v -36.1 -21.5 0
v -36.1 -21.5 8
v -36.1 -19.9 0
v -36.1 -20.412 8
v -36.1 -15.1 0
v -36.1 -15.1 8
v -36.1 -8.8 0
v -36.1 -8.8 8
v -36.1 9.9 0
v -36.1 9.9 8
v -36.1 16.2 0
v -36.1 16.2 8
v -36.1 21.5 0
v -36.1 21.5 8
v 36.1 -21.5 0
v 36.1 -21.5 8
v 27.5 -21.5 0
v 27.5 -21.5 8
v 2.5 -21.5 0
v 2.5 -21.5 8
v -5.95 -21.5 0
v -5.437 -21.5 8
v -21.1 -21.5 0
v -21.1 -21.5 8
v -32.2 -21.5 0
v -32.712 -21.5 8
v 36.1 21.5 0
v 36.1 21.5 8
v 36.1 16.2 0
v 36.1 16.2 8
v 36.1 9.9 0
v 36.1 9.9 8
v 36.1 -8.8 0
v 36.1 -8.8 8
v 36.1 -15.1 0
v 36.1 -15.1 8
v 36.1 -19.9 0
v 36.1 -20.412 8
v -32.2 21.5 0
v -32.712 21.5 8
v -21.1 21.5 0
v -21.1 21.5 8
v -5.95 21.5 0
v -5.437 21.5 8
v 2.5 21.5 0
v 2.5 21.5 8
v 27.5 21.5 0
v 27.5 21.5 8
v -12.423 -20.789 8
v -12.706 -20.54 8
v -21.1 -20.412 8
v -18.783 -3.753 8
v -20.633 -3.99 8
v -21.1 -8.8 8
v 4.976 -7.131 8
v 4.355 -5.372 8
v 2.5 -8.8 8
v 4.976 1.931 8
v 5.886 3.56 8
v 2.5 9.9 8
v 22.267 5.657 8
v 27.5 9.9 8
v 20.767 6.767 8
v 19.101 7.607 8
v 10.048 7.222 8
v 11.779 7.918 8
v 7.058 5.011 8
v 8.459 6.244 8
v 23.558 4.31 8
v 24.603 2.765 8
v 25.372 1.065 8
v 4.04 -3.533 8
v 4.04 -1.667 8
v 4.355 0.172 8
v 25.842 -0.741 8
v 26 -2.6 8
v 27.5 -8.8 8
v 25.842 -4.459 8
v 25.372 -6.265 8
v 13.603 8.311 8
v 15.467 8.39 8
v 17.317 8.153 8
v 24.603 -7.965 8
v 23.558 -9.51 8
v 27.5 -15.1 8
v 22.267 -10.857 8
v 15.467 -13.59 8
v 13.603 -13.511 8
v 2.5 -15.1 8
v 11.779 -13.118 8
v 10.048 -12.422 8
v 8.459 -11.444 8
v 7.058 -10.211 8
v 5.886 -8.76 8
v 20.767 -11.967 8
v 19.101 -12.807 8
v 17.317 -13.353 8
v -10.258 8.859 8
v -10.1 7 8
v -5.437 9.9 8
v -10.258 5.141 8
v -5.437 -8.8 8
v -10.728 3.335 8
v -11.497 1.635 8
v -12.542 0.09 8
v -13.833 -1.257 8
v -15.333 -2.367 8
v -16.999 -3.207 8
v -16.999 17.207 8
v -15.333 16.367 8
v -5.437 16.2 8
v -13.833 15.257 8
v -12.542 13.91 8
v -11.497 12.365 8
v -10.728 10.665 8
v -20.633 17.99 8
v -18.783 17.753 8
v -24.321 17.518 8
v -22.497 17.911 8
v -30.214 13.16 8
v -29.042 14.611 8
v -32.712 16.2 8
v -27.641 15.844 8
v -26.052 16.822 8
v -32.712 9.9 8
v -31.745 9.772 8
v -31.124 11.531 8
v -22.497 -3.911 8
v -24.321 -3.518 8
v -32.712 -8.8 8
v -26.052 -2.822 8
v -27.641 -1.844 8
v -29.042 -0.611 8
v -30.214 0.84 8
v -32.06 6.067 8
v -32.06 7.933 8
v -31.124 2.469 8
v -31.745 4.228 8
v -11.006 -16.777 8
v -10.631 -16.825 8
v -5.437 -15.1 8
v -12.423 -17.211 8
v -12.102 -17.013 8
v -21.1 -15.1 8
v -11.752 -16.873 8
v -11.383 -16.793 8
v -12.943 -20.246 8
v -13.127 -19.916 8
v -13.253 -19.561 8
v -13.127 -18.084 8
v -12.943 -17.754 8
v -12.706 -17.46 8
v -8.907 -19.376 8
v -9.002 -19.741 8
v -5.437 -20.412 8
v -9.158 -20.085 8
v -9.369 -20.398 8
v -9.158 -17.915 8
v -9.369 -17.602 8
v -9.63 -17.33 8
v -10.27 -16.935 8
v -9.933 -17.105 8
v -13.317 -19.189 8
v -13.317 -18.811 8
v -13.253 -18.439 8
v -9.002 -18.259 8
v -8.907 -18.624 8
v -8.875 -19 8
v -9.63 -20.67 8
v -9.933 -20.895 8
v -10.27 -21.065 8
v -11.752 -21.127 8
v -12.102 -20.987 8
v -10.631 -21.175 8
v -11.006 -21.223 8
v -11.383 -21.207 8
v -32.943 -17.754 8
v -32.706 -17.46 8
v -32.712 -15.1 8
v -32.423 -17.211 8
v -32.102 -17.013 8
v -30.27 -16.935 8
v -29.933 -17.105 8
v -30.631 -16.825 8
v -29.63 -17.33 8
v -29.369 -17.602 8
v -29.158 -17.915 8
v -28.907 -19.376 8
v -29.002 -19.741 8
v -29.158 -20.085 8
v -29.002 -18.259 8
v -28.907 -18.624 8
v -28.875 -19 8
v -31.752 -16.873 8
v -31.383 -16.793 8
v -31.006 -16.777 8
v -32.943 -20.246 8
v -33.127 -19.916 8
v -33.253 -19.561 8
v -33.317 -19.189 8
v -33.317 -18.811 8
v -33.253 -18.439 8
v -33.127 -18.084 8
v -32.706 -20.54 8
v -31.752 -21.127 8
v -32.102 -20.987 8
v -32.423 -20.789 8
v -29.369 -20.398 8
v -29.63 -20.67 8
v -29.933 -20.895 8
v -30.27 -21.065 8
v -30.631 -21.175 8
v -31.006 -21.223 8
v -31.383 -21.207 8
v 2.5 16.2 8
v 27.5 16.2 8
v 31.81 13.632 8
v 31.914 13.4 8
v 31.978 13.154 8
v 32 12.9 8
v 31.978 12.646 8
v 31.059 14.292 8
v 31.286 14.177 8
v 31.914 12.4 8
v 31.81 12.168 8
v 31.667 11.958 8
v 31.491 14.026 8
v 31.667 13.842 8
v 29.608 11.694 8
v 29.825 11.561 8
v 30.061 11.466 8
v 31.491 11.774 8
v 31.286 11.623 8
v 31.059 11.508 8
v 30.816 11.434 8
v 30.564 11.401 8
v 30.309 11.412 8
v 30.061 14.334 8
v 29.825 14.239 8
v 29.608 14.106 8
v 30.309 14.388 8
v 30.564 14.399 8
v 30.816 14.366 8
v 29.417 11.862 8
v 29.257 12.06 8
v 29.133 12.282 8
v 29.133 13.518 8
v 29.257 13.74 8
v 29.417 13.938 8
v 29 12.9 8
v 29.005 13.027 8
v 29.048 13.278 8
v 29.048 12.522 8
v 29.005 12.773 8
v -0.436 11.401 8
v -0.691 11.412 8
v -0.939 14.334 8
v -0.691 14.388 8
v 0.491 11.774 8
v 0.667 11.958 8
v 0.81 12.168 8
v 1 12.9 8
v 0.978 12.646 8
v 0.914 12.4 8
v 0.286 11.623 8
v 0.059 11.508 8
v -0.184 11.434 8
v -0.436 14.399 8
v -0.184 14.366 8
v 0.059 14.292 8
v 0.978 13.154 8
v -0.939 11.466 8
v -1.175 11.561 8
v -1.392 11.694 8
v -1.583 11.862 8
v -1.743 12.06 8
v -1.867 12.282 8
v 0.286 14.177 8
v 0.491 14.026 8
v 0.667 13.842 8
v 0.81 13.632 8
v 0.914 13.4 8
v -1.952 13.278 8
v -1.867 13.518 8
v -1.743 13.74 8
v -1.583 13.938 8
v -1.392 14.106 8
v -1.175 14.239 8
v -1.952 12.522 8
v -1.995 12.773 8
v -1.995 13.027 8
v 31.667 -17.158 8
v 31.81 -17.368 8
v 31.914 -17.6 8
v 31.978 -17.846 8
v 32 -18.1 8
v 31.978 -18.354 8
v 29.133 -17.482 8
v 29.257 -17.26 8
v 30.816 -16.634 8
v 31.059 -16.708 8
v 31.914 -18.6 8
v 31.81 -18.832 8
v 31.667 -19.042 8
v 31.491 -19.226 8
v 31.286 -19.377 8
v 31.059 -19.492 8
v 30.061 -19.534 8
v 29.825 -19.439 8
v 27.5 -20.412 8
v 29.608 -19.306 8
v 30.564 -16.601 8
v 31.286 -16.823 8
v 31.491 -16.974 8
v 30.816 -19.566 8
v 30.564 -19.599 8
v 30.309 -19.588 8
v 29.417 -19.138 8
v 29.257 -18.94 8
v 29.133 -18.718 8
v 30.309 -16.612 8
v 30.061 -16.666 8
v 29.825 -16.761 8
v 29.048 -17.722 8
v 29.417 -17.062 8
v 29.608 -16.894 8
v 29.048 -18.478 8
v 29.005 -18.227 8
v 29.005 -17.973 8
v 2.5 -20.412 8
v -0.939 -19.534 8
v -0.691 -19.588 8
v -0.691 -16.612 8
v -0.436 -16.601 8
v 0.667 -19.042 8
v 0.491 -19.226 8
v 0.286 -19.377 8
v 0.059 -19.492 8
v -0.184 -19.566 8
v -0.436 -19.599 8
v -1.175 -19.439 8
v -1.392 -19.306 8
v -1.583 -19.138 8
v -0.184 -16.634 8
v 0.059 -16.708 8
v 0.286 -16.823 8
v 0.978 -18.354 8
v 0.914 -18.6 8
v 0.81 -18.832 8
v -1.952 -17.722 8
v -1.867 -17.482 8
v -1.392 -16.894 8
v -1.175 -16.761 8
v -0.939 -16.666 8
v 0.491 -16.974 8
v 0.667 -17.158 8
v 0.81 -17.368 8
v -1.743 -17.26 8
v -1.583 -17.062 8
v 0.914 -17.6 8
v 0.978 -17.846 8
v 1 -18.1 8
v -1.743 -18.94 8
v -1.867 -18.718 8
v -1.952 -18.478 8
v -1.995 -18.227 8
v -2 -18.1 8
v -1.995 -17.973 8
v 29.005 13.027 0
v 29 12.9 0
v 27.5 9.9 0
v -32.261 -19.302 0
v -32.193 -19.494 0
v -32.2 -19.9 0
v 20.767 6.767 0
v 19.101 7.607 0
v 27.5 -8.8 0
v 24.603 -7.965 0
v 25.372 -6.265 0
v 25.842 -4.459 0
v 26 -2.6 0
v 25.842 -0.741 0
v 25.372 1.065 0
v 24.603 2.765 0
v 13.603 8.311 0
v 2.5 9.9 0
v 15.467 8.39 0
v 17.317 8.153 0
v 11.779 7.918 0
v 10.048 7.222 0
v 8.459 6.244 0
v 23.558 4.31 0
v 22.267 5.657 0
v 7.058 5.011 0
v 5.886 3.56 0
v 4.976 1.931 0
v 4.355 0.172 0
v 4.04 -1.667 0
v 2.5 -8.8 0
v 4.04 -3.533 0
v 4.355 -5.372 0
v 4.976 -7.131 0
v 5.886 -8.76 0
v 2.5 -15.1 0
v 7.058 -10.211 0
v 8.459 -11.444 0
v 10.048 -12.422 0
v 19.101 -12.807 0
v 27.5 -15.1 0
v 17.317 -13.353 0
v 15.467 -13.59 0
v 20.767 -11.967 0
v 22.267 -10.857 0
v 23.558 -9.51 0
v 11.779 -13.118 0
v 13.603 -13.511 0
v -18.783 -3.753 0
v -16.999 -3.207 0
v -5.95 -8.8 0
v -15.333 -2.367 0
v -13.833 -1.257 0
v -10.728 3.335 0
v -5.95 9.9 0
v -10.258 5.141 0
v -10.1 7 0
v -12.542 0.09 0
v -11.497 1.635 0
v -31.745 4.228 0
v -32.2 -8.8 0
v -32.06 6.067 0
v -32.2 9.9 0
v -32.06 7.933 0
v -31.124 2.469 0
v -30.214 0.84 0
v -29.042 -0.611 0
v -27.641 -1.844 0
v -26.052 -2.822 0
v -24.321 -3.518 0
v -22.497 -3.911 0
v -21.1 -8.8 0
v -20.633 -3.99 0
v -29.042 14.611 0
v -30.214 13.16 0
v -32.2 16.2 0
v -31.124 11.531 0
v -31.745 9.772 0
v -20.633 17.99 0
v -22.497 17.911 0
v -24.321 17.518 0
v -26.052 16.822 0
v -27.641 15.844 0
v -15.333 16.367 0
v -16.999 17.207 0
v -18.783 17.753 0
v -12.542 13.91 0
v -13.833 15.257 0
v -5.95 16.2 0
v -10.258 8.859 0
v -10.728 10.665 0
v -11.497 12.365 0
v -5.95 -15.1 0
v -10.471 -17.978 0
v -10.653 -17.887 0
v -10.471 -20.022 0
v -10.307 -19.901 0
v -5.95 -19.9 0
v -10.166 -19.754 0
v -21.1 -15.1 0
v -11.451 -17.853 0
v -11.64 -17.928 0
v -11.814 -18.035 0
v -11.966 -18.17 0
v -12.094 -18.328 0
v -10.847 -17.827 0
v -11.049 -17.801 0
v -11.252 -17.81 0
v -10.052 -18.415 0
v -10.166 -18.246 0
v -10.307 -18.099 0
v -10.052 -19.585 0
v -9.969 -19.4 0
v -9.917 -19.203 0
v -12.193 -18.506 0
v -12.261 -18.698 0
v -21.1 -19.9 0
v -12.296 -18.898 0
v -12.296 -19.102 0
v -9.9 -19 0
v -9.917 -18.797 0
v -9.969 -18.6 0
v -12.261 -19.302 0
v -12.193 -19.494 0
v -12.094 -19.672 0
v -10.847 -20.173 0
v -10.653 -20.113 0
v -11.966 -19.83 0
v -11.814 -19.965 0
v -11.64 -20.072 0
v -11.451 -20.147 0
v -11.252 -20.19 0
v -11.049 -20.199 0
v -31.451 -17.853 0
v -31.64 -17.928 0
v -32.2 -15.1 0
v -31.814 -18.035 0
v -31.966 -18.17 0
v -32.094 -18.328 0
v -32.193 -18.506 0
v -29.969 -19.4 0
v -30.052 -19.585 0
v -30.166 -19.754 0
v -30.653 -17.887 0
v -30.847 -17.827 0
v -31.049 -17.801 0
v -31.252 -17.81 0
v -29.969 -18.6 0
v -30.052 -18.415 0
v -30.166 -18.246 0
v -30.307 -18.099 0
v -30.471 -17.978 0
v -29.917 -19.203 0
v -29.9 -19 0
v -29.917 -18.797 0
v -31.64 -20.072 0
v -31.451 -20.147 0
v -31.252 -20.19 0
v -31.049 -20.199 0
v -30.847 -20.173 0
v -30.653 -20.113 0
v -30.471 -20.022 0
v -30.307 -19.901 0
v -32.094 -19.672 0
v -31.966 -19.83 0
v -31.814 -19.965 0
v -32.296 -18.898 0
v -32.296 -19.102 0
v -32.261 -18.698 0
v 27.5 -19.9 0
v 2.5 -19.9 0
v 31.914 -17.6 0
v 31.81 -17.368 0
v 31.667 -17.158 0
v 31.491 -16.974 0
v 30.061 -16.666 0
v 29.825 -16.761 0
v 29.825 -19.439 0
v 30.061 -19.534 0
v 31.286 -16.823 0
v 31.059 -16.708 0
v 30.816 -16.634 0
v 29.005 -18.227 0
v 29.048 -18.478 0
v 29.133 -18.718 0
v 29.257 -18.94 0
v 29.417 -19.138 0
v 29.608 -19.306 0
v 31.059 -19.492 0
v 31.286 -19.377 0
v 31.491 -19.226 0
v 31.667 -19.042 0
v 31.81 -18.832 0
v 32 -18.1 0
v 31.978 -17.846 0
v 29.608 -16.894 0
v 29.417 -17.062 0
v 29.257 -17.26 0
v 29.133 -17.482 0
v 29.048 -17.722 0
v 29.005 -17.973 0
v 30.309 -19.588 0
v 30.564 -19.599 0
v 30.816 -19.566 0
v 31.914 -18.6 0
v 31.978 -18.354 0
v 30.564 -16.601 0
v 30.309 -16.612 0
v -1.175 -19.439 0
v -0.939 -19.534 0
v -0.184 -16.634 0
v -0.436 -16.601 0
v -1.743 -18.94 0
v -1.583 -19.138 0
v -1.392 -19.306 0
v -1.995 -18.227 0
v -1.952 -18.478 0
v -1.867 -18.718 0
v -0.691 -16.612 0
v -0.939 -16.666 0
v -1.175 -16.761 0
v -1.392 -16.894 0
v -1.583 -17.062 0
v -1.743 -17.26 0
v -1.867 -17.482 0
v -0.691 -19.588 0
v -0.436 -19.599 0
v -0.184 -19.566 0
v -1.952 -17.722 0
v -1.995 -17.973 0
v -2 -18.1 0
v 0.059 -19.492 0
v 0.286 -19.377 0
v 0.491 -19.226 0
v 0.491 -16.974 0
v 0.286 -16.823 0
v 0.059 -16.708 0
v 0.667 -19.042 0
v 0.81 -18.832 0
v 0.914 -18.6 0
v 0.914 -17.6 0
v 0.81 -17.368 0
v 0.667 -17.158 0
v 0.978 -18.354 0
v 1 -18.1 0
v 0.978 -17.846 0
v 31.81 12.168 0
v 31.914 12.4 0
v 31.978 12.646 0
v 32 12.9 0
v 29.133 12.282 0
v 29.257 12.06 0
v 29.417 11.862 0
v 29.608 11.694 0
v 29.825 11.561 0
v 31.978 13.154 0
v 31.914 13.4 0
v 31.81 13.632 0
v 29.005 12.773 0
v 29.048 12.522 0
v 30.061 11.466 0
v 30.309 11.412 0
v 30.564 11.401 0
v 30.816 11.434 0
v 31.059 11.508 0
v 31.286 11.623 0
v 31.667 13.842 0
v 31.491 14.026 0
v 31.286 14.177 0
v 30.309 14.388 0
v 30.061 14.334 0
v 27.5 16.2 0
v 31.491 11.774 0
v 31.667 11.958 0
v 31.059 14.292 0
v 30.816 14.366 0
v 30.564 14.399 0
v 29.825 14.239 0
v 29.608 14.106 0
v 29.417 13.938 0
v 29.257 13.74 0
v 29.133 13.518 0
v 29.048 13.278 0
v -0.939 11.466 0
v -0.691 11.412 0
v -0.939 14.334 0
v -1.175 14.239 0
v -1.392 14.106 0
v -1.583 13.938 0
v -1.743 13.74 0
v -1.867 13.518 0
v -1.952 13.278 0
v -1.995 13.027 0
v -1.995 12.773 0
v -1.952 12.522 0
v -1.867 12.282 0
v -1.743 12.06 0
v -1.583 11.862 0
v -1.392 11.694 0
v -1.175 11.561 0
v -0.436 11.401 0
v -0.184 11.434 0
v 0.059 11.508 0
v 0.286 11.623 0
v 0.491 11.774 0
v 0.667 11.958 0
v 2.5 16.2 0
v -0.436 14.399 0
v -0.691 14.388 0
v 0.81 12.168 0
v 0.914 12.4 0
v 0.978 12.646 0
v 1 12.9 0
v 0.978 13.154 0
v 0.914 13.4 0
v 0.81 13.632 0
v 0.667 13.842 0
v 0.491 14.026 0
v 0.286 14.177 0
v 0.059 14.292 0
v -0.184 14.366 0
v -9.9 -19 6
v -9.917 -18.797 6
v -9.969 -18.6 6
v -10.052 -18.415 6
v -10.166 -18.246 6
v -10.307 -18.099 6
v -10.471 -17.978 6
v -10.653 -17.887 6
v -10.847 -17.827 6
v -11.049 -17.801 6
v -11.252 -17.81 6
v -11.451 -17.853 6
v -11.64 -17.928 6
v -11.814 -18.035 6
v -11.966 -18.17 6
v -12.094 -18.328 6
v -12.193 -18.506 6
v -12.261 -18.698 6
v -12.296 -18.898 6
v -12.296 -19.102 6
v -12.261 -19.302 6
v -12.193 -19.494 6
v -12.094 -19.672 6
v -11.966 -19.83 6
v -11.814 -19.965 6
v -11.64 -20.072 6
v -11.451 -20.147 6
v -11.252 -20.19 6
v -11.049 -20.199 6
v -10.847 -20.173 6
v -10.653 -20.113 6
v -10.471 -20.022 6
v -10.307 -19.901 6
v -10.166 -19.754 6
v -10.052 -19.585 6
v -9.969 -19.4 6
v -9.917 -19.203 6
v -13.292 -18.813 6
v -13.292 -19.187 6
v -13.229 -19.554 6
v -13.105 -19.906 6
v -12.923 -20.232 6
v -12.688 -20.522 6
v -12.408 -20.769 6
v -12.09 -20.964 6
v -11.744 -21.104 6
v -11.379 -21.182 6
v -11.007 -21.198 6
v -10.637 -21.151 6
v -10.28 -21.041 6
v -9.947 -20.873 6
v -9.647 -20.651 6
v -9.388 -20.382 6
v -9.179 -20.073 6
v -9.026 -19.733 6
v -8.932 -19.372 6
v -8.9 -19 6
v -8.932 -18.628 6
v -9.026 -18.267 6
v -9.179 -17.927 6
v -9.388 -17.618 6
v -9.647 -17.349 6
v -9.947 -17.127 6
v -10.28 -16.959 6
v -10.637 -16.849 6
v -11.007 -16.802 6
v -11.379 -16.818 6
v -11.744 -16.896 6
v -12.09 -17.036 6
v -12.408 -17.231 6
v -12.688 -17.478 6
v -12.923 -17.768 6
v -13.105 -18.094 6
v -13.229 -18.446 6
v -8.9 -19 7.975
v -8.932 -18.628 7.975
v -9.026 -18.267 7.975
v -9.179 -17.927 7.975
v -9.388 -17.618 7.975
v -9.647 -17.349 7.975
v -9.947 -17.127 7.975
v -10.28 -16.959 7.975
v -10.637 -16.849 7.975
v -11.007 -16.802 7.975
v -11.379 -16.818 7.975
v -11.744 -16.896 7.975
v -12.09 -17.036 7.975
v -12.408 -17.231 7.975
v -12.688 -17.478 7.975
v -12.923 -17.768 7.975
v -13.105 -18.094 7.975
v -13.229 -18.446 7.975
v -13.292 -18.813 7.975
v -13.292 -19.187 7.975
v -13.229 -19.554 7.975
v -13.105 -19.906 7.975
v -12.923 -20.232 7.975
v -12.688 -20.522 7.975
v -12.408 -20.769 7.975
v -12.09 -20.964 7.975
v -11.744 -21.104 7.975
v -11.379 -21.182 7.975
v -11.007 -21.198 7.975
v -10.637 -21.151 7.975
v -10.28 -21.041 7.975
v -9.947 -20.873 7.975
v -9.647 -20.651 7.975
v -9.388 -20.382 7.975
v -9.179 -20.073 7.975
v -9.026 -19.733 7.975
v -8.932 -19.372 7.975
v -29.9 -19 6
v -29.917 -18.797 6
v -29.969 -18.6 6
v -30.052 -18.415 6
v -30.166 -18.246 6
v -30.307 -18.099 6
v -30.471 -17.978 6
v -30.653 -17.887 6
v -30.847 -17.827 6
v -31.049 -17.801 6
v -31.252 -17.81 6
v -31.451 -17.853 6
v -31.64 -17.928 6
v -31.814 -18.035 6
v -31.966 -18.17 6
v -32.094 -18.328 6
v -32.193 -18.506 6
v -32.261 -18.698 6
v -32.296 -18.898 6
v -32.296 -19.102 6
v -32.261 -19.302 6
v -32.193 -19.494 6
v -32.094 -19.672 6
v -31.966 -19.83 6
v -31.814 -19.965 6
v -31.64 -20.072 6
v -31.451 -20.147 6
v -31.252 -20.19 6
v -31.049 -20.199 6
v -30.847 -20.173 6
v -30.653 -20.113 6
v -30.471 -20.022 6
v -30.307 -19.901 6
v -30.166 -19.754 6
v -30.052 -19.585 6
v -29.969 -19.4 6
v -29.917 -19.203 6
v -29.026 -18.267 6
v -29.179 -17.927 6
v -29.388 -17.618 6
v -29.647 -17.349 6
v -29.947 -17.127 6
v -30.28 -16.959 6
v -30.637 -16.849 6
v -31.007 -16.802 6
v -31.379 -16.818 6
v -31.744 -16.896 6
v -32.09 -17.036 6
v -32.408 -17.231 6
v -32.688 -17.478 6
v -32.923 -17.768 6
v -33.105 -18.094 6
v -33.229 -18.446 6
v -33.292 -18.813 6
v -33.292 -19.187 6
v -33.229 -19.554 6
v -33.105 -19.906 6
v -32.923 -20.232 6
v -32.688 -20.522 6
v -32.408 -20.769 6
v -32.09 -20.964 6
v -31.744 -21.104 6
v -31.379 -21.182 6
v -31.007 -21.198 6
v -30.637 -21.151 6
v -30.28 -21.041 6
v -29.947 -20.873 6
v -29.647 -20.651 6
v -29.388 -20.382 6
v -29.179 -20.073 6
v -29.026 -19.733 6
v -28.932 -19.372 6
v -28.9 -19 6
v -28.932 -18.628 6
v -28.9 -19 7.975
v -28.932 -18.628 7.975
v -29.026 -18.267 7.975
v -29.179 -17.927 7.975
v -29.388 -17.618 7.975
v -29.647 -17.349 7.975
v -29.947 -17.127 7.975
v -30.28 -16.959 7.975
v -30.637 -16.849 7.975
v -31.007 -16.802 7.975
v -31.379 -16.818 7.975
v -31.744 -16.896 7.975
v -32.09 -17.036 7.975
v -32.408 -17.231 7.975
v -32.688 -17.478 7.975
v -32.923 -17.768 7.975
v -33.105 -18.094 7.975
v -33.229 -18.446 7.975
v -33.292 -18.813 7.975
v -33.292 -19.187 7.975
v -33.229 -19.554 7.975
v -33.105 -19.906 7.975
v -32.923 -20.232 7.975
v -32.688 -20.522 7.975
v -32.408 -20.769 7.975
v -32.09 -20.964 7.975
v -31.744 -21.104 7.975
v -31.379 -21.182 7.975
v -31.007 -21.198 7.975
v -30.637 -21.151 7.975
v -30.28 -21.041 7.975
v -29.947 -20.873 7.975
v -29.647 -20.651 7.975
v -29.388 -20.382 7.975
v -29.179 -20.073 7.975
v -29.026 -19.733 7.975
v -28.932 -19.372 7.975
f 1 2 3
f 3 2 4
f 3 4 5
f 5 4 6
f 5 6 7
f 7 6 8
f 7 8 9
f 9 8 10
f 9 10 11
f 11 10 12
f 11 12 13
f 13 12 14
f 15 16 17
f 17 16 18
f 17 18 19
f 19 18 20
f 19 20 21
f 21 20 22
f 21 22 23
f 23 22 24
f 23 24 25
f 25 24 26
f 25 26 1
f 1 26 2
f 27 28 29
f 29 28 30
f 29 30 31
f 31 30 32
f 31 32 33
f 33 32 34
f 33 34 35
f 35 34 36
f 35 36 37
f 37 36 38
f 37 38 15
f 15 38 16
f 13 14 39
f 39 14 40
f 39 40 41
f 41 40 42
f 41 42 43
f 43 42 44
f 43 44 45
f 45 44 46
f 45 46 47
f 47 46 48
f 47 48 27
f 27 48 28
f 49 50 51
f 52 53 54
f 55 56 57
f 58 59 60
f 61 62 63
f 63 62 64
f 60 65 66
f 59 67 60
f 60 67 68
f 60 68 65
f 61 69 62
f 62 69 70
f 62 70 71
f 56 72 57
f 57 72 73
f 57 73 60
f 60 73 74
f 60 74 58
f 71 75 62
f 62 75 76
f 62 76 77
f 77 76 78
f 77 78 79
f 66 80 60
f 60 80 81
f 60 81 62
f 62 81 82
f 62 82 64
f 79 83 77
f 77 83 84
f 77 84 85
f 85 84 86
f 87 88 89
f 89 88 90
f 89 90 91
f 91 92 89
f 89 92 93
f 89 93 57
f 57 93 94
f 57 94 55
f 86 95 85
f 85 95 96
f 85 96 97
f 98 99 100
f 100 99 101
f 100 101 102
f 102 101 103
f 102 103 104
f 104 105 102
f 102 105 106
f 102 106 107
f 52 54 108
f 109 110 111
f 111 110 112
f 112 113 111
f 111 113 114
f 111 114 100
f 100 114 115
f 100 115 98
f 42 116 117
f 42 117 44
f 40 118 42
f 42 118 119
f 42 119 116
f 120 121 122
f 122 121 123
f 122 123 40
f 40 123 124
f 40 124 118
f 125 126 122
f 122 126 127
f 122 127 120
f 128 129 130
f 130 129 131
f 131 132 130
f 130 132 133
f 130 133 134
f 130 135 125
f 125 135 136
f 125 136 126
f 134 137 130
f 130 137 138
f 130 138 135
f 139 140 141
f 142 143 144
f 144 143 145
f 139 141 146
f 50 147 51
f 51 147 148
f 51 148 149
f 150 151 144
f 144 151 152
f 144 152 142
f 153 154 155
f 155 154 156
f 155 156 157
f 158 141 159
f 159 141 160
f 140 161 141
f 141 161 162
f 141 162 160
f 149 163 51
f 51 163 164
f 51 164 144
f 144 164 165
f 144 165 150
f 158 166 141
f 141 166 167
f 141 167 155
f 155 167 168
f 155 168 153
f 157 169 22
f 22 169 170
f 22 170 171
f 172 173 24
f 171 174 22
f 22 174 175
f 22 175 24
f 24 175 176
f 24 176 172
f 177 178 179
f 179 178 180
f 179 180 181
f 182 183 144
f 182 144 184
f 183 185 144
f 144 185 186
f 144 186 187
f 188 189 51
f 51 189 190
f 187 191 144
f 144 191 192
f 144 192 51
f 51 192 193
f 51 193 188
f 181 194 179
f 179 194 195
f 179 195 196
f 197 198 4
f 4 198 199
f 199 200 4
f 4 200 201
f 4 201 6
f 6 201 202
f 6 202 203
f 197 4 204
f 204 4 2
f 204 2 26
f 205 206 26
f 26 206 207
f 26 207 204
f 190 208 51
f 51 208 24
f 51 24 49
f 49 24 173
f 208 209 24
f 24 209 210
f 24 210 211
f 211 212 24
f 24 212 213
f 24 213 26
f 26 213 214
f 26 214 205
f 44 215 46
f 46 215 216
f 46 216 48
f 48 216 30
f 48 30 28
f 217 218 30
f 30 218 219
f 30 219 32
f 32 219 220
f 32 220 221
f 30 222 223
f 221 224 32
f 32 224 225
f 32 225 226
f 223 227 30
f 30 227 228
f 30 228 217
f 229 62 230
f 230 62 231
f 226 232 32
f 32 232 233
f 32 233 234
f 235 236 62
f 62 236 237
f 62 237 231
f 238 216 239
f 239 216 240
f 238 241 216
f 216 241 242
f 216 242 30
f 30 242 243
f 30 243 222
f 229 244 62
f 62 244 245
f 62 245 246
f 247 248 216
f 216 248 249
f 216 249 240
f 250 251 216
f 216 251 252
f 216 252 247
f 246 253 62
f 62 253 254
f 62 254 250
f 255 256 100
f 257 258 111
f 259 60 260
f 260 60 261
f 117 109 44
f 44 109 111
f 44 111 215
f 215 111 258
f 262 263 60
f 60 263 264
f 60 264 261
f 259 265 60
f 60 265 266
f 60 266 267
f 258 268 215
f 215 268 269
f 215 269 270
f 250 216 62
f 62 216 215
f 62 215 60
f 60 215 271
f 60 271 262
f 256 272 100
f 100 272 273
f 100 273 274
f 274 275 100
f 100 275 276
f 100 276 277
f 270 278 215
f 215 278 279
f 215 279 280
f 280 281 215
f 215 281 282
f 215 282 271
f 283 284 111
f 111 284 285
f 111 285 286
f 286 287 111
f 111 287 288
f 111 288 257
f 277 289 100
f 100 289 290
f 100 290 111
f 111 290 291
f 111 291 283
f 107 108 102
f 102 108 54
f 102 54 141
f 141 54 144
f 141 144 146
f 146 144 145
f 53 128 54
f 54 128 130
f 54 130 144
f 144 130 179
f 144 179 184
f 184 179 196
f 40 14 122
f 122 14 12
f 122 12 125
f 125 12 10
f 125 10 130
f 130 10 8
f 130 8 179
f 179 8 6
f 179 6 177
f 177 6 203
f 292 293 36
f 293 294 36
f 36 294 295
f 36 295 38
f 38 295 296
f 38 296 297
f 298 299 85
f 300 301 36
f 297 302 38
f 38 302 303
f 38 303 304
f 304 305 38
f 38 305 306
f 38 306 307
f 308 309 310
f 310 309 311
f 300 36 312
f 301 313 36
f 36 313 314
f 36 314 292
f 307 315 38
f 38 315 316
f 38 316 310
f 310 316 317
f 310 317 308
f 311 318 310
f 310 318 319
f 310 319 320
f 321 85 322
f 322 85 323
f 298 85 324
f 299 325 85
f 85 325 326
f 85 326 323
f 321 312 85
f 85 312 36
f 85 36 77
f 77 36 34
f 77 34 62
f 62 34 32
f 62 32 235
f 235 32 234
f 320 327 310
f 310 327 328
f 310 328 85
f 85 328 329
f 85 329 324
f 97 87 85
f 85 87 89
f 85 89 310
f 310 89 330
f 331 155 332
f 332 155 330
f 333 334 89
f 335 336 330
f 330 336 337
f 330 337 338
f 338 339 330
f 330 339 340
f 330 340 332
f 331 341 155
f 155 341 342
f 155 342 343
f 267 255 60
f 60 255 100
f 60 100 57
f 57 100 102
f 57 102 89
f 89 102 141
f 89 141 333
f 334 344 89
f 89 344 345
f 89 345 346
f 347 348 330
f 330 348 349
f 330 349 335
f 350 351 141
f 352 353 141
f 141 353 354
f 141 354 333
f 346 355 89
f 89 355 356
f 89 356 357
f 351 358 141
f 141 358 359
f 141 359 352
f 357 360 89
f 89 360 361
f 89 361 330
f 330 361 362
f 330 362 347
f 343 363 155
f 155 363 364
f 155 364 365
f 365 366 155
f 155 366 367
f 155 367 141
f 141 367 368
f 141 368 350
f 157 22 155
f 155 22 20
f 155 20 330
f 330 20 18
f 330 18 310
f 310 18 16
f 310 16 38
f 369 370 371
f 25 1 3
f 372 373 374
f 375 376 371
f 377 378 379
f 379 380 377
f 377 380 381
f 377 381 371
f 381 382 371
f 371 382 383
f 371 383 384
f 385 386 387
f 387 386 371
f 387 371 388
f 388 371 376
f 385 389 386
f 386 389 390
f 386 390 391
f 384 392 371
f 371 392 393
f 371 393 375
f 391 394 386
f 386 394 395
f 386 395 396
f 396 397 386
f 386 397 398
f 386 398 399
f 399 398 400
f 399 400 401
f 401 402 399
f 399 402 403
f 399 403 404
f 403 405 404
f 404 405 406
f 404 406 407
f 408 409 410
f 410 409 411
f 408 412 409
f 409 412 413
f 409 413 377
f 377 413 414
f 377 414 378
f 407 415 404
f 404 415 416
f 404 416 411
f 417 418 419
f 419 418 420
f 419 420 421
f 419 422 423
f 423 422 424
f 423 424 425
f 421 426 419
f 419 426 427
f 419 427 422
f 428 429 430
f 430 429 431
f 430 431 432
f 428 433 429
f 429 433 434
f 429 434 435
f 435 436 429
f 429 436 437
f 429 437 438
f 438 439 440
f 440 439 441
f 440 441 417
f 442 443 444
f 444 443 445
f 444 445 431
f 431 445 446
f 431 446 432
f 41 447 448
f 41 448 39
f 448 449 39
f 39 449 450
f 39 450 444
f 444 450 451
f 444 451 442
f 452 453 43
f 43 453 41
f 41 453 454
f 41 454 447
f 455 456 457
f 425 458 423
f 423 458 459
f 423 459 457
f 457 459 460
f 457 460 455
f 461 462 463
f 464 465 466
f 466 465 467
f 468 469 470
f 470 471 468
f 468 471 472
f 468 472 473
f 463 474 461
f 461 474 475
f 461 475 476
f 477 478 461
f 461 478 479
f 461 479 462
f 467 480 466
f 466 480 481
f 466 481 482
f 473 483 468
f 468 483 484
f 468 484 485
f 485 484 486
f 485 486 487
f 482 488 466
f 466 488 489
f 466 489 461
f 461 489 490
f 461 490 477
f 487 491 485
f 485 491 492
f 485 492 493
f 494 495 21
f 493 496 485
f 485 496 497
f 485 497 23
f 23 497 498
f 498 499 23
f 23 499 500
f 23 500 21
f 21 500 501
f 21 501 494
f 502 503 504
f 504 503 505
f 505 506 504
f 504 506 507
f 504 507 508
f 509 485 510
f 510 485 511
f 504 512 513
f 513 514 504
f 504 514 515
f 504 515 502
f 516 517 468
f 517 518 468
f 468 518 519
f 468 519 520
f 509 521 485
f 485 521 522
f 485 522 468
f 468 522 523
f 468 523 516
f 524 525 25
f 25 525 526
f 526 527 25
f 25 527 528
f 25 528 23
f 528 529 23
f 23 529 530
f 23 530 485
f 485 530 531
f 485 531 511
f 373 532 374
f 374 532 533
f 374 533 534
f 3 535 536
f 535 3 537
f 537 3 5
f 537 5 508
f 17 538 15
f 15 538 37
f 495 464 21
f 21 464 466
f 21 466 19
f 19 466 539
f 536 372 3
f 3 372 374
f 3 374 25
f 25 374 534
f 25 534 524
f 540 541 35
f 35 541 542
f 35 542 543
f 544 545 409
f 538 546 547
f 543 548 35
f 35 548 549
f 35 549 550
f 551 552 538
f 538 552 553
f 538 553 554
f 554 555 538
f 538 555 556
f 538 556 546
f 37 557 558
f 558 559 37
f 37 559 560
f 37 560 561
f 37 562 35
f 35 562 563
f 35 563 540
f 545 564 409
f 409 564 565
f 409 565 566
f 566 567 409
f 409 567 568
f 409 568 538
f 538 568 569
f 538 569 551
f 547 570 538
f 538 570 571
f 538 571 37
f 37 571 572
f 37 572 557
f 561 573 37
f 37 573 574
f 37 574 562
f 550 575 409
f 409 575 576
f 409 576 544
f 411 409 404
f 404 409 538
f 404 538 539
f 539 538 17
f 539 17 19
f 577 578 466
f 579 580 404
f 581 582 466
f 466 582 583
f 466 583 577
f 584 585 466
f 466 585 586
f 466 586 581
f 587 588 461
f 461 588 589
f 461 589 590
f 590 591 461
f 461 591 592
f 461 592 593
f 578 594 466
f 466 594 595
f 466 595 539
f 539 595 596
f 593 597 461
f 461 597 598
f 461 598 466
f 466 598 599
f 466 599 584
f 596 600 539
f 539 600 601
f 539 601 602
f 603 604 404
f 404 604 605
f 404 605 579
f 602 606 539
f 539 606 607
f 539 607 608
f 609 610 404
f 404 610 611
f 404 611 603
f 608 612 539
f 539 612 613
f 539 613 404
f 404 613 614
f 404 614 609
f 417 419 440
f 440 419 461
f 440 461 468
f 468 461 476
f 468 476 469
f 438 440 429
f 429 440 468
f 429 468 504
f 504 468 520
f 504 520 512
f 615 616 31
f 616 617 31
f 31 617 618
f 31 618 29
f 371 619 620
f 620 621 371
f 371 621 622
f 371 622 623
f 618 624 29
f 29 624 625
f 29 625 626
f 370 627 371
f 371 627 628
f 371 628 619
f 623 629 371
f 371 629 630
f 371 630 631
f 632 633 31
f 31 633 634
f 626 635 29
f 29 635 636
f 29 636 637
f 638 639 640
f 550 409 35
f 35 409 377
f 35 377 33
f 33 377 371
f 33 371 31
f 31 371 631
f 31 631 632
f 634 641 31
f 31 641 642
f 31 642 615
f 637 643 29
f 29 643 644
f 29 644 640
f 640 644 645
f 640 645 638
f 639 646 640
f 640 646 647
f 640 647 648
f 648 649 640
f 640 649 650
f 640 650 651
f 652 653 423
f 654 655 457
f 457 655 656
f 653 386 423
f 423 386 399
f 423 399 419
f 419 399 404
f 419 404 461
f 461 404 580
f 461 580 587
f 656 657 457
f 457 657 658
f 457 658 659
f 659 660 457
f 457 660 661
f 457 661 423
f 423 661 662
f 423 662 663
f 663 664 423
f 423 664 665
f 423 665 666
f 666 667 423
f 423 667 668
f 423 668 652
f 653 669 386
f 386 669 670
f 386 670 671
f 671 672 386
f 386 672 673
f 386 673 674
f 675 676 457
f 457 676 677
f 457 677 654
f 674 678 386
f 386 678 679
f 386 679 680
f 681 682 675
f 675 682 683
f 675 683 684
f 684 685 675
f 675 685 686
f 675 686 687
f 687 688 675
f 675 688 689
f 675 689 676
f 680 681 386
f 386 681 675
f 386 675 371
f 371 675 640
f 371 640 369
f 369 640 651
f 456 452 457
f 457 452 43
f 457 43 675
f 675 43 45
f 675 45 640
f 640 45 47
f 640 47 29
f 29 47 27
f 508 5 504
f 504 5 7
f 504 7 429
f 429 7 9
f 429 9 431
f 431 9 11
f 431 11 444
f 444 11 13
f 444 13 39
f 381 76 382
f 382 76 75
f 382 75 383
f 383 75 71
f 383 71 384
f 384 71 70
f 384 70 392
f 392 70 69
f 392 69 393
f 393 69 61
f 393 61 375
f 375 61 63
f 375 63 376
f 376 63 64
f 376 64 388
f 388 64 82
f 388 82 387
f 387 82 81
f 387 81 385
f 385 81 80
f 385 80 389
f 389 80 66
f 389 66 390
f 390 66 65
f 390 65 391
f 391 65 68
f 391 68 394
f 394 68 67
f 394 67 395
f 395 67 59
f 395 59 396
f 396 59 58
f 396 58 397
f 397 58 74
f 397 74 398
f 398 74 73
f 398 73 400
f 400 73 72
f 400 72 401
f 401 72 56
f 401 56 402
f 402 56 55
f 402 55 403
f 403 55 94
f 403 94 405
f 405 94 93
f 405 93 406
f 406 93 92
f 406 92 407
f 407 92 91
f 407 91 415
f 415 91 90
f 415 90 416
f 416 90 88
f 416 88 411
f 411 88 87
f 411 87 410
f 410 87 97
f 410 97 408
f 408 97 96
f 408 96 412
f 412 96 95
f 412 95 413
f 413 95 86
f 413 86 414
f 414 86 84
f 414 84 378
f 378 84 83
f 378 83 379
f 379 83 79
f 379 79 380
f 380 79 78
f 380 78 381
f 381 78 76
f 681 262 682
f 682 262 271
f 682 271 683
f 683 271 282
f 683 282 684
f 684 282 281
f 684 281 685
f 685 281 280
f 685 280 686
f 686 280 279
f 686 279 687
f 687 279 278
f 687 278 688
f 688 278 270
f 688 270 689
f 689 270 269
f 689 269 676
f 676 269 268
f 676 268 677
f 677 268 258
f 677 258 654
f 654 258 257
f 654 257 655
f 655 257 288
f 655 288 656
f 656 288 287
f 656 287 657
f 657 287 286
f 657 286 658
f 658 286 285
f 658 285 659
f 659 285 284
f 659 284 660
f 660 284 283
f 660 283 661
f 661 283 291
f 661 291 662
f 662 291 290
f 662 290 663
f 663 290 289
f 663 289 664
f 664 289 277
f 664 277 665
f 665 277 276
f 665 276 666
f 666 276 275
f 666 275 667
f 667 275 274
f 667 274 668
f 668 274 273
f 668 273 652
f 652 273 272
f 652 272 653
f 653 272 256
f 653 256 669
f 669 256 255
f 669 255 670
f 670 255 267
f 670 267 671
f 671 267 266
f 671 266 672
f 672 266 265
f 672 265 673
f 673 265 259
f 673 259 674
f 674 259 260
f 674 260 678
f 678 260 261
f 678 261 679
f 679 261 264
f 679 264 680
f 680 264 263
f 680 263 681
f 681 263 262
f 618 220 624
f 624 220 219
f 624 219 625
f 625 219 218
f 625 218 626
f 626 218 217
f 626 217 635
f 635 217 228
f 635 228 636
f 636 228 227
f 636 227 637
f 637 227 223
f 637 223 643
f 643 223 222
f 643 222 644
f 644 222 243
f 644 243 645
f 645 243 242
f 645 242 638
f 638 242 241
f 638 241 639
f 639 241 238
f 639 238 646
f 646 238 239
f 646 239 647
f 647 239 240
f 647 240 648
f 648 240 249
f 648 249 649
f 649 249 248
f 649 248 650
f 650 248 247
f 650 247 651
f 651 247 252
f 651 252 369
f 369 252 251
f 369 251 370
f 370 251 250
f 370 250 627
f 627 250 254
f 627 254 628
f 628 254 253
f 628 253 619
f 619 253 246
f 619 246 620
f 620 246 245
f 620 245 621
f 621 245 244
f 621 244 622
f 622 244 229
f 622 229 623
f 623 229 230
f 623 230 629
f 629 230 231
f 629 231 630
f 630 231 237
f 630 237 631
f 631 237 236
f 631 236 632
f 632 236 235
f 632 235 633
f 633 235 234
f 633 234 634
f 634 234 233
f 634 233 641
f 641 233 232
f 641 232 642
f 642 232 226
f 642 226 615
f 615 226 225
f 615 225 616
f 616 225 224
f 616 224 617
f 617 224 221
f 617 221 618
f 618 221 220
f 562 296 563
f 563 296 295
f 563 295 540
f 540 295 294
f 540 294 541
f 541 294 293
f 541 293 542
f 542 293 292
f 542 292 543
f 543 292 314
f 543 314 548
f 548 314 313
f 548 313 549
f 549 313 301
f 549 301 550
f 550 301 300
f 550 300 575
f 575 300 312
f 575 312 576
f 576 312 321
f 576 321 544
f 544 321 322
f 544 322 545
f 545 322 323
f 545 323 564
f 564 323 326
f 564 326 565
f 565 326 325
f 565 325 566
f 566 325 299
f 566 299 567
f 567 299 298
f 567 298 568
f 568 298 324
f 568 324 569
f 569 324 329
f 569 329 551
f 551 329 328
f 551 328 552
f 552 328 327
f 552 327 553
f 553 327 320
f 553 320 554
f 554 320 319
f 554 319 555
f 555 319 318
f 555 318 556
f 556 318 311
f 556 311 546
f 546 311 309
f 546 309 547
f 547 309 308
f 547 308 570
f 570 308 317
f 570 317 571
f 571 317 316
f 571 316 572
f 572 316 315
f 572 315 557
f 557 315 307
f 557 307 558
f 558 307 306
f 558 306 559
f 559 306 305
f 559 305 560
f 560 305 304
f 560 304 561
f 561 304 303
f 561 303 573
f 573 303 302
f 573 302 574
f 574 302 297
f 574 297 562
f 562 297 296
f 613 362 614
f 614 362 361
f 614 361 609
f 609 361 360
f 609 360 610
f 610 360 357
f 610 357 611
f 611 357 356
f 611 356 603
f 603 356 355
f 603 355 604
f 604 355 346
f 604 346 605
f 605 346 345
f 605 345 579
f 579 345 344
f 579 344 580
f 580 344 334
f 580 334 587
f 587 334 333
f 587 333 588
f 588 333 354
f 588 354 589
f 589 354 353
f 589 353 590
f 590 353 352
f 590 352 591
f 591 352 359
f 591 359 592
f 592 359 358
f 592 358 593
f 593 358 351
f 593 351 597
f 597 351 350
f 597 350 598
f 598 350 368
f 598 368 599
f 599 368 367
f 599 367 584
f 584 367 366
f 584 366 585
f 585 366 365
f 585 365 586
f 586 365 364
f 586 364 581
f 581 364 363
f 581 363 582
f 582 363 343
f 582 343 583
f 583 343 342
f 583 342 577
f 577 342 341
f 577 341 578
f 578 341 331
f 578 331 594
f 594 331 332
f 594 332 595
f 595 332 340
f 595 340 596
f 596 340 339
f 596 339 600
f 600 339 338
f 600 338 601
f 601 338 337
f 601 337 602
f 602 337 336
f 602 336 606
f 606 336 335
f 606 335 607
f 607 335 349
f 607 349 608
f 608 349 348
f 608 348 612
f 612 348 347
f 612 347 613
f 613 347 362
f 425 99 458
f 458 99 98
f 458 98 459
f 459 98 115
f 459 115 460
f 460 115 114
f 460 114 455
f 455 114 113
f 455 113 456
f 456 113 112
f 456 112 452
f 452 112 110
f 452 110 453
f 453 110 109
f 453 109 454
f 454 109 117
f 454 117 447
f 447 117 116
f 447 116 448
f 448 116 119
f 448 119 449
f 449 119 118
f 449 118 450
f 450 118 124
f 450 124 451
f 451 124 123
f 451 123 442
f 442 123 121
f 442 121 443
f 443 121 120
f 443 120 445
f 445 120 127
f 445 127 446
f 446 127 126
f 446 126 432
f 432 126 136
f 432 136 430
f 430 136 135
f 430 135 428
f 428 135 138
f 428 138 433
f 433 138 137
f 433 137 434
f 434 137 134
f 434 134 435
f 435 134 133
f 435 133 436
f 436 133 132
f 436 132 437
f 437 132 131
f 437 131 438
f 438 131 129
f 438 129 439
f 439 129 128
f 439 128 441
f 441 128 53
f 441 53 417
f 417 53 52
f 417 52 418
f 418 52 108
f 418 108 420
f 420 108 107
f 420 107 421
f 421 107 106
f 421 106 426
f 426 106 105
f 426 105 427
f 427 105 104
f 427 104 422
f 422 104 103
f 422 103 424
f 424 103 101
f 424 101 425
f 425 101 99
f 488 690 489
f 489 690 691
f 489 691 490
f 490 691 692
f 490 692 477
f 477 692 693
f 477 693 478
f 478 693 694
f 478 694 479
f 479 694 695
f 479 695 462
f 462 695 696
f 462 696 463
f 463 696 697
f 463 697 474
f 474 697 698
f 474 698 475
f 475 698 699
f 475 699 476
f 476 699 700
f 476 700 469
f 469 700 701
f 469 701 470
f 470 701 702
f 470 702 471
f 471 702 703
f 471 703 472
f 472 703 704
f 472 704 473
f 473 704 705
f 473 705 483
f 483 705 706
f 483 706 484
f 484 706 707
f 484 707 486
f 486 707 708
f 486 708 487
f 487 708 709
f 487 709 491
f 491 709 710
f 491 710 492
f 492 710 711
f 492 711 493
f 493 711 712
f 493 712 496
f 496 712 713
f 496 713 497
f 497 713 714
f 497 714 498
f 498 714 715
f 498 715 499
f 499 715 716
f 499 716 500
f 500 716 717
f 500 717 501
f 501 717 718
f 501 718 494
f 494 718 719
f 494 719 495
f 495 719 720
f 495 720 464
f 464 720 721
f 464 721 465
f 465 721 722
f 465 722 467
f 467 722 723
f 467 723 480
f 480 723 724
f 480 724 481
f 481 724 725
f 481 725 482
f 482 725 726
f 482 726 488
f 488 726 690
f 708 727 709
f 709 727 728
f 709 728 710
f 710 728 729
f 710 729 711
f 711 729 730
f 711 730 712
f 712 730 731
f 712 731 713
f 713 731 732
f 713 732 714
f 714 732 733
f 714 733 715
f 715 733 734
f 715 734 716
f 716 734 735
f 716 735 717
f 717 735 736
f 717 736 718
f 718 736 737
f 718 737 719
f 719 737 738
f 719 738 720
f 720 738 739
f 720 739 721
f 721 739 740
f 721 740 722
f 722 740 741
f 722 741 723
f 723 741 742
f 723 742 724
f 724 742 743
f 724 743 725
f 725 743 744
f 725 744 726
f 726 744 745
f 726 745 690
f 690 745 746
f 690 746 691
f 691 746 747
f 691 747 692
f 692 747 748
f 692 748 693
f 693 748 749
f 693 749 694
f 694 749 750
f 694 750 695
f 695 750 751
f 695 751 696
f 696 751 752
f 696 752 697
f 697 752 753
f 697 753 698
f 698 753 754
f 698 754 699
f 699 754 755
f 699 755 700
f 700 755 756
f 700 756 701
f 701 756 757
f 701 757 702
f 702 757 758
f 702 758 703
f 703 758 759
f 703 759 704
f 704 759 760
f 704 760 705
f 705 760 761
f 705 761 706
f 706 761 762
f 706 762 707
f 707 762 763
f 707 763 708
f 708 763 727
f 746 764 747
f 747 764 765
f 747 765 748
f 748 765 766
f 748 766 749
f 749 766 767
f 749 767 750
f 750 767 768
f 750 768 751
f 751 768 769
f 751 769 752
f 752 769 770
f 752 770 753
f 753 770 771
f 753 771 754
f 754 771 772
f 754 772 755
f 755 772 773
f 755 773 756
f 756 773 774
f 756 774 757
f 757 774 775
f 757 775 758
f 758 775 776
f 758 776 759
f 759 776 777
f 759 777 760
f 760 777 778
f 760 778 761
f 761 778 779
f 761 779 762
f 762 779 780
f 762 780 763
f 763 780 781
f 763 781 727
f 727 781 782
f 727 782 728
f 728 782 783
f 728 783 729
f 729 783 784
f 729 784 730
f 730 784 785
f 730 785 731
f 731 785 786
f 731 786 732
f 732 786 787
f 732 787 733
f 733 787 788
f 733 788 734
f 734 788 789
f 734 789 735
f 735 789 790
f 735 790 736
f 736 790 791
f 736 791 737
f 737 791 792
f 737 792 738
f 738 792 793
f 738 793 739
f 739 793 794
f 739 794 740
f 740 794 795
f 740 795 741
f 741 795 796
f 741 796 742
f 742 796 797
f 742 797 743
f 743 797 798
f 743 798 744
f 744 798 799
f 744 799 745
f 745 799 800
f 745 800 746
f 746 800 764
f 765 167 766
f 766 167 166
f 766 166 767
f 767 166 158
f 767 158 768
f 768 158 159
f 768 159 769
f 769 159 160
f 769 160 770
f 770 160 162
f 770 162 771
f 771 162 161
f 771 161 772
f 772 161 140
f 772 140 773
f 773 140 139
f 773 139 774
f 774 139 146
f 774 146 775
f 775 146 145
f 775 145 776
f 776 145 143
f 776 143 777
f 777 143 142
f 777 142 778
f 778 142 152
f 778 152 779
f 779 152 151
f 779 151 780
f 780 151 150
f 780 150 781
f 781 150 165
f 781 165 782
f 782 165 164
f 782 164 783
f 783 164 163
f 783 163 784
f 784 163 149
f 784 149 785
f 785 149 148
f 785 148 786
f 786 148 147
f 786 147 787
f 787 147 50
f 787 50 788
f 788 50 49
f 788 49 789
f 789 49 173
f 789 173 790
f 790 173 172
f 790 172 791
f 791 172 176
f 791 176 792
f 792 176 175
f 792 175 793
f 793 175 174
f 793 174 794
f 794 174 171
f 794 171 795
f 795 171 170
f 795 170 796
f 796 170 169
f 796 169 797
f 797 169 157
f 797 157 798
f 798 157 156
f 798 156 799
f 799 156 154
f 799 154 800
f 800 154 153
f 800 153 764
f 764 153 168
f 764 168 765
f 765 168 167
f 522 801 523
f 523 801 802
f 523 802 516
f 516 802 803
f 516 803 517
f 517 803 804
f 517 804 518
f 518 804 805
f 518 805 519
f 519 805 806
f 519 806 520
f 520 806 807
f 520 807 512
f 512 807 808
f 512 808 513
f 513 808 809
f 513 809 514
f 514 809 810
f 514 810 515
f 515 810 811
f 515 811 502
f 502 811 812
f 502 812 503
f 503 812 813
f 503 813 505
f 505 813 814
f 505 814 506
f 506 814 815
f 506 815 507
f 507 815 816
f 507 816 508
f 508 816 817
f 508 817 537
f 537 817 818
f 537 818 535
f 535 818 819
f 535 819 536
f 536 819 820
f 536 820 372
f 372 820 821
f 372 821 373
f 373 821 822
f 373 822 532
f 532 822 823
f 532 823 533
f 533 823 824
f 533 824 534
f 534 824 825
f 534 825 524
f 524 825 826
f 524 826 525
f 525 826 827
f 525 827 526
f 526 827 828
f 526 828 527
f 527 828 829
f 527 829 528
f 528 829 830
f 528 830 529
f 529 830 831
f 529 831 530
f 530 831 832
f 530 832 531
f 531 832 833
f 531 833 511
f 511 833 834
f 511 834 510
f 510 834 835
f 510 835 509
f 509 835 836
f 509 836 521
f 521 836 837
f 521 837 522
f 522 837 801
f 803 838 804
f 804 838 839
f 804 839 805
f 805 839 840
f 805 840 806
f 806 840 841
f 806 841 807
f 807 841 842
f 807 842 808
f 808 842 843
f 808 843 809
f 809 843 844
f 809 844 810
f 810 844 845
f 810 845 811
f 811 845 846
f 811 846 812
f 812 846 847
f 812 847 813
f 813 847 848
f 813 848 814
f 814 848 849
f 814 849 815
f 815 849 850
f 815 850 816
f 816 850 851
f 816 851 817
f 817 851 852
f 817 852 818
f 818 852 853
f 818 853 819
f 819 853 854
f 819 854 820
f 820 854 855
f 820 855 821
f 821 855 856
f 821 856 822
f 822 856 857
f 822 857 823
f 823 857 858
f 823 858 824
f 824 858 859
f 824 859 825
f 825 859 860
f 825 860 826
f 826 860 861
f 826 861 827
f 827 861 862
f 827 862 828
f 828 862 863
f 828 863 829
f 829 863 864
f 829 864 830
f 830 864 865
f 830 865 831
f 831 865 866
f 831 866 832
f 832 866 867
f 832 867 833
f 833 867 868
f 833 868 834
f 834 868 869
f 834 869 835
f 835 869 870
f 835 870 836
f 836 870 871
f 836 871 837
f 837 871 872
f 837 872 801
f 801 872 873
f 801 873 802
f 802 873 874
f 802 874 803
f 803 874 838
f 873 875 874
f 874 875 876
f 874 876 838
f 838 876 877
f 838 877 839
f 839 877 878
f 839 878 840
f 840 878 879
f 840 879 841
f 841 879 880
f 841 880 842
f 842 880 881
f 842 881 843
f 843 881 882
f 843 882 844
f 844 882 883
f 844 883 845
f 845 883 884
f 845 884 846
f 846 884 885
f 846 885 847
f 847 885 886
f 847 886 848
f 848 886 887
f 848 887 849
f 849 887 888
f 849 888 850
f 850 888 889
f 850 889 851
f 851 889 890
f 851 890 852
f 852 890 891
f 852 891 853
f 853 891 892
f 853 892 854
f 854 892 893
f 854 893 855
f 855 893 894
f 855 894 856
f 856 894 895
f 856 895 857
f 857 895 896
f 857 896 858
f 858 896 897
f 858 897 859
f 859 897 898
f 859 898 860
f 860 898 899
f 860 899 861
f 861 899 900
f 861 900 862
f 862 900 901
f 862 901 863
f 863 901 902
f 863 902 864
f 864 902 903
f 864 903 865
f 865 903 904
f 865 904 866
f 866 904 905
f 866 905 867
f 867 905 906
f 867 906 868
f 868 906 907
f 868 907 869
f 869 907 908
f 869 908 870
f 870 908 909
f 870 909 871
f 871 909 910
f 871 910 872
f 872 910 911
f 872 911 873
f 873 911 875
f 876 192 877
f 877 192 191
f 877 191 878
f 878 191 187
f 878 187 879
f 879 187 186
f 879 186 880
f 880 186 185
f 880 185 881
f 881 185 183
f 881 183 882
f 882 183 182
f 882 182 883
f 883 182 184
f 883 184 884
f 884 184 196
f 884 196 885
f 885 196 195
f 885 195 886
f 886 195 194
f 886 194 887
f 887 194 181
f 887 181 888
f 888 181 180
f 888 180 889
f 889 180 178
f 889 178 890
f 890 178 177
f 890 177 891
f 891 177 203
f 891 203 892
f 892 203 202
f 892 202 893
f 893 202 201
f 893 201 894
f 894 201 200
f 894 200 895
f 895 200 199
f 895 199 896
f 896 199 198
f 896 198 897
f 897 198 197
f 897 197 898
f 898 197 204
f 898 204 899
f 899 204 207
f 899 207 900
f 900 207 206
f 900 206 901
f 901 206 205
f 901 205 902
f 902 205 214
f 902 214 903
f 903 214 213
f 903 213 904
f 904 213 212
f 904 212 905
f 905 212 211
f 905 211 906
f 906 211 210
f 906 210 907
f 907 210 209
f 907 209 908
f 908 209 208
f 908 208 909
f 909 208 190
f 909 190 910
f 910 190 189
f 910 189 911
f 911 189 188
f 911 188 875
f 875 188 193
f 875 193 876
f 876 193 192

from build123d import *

# Parameters (mm, degrees)
ESBO_O1_W                        = 72.2
ESBO_O1_H                        = 43
RESSALTO_EXTRUS_O1_DEPTH         = 8
ESBO_O2_R                        = 11
ESBO_O2_R_2                      = 1.5
CORTE_EXTRUS_O1_DEPTH            = 9
REBAIXO_PARA_SHCS_M21_AT_2_COUNT = 2
REBAIXO_PARA_SHCS_M21_AT_2_PITCH = 20


with BuildPart() as part:
    # Esboço1 → Ressalto-extrusão1 (new body)
    with BuildSketch(Plane.XY):
        Rectangle(ESBO_O1_W, ESBO_O1_H)
    extrude(amount=RESSALTO_EXTRUS_O1_DEPTH)

    # Esboço2 → Corte-extrusão1 (cut, through all)
    with BuildSketch(Plane.XY.offset(8)):
        with Locations((-21.1, 7)):
            Circle(ESBO_O2_R)
        with Locations((15, -2.6)):
            Circle(ESBO_O2_R)
        with Locations((-0.5, 12.9)):
            Circle(ESBO_O2_R_2)
        with Locations((30.5, 12.9)):
            Circle(ESBO_O2_R_2)
        with Locations((30.5, -18.1)):
            Circle(ESBO_O2_R_2)
        with Locations((-0.5, -18.1)):
            Circle(ESBO_O2_R_2)
    extrude(amount=-CORTE_EXTRUS_O1_DEPTH, mode=Mode.SUBTRACT)

    # Esboço6 → Rebaixo para SHCS M21 (revolve, cut)
    with BuildSketch(Plane(origin=(-31.1, -19, 8), x_dir=(0, -1, 0), z_dir=(1, 0, 0))):
        Polygon((0, 0), (0, 8), (1.2, 8), (1.2, 2), (2.2, 2), (2.2, 0.025), (2.225, 0), align=None)
    rebaixo_para_shcs_m21 = revolve(axis=Axis((-31.1, -19, 14.35), (0, 0, -1)), mode=Mode.SUBTRACT)

    # Rebaixo para SHCS M21 at 2: Rebaixo para SHCS M21 ×2
    with Locations(*[(i * REBAIXO_PARA_SHCS_M21_AT_2_PITCH, 0, 0) for i in range(1, REBAIXO_PARA_SHCS_M21_AT_2_COUNT)]):
        add(rebaixo_para_shcs_m21, mode=Mode.SUBTRACT)


solid = part.part
